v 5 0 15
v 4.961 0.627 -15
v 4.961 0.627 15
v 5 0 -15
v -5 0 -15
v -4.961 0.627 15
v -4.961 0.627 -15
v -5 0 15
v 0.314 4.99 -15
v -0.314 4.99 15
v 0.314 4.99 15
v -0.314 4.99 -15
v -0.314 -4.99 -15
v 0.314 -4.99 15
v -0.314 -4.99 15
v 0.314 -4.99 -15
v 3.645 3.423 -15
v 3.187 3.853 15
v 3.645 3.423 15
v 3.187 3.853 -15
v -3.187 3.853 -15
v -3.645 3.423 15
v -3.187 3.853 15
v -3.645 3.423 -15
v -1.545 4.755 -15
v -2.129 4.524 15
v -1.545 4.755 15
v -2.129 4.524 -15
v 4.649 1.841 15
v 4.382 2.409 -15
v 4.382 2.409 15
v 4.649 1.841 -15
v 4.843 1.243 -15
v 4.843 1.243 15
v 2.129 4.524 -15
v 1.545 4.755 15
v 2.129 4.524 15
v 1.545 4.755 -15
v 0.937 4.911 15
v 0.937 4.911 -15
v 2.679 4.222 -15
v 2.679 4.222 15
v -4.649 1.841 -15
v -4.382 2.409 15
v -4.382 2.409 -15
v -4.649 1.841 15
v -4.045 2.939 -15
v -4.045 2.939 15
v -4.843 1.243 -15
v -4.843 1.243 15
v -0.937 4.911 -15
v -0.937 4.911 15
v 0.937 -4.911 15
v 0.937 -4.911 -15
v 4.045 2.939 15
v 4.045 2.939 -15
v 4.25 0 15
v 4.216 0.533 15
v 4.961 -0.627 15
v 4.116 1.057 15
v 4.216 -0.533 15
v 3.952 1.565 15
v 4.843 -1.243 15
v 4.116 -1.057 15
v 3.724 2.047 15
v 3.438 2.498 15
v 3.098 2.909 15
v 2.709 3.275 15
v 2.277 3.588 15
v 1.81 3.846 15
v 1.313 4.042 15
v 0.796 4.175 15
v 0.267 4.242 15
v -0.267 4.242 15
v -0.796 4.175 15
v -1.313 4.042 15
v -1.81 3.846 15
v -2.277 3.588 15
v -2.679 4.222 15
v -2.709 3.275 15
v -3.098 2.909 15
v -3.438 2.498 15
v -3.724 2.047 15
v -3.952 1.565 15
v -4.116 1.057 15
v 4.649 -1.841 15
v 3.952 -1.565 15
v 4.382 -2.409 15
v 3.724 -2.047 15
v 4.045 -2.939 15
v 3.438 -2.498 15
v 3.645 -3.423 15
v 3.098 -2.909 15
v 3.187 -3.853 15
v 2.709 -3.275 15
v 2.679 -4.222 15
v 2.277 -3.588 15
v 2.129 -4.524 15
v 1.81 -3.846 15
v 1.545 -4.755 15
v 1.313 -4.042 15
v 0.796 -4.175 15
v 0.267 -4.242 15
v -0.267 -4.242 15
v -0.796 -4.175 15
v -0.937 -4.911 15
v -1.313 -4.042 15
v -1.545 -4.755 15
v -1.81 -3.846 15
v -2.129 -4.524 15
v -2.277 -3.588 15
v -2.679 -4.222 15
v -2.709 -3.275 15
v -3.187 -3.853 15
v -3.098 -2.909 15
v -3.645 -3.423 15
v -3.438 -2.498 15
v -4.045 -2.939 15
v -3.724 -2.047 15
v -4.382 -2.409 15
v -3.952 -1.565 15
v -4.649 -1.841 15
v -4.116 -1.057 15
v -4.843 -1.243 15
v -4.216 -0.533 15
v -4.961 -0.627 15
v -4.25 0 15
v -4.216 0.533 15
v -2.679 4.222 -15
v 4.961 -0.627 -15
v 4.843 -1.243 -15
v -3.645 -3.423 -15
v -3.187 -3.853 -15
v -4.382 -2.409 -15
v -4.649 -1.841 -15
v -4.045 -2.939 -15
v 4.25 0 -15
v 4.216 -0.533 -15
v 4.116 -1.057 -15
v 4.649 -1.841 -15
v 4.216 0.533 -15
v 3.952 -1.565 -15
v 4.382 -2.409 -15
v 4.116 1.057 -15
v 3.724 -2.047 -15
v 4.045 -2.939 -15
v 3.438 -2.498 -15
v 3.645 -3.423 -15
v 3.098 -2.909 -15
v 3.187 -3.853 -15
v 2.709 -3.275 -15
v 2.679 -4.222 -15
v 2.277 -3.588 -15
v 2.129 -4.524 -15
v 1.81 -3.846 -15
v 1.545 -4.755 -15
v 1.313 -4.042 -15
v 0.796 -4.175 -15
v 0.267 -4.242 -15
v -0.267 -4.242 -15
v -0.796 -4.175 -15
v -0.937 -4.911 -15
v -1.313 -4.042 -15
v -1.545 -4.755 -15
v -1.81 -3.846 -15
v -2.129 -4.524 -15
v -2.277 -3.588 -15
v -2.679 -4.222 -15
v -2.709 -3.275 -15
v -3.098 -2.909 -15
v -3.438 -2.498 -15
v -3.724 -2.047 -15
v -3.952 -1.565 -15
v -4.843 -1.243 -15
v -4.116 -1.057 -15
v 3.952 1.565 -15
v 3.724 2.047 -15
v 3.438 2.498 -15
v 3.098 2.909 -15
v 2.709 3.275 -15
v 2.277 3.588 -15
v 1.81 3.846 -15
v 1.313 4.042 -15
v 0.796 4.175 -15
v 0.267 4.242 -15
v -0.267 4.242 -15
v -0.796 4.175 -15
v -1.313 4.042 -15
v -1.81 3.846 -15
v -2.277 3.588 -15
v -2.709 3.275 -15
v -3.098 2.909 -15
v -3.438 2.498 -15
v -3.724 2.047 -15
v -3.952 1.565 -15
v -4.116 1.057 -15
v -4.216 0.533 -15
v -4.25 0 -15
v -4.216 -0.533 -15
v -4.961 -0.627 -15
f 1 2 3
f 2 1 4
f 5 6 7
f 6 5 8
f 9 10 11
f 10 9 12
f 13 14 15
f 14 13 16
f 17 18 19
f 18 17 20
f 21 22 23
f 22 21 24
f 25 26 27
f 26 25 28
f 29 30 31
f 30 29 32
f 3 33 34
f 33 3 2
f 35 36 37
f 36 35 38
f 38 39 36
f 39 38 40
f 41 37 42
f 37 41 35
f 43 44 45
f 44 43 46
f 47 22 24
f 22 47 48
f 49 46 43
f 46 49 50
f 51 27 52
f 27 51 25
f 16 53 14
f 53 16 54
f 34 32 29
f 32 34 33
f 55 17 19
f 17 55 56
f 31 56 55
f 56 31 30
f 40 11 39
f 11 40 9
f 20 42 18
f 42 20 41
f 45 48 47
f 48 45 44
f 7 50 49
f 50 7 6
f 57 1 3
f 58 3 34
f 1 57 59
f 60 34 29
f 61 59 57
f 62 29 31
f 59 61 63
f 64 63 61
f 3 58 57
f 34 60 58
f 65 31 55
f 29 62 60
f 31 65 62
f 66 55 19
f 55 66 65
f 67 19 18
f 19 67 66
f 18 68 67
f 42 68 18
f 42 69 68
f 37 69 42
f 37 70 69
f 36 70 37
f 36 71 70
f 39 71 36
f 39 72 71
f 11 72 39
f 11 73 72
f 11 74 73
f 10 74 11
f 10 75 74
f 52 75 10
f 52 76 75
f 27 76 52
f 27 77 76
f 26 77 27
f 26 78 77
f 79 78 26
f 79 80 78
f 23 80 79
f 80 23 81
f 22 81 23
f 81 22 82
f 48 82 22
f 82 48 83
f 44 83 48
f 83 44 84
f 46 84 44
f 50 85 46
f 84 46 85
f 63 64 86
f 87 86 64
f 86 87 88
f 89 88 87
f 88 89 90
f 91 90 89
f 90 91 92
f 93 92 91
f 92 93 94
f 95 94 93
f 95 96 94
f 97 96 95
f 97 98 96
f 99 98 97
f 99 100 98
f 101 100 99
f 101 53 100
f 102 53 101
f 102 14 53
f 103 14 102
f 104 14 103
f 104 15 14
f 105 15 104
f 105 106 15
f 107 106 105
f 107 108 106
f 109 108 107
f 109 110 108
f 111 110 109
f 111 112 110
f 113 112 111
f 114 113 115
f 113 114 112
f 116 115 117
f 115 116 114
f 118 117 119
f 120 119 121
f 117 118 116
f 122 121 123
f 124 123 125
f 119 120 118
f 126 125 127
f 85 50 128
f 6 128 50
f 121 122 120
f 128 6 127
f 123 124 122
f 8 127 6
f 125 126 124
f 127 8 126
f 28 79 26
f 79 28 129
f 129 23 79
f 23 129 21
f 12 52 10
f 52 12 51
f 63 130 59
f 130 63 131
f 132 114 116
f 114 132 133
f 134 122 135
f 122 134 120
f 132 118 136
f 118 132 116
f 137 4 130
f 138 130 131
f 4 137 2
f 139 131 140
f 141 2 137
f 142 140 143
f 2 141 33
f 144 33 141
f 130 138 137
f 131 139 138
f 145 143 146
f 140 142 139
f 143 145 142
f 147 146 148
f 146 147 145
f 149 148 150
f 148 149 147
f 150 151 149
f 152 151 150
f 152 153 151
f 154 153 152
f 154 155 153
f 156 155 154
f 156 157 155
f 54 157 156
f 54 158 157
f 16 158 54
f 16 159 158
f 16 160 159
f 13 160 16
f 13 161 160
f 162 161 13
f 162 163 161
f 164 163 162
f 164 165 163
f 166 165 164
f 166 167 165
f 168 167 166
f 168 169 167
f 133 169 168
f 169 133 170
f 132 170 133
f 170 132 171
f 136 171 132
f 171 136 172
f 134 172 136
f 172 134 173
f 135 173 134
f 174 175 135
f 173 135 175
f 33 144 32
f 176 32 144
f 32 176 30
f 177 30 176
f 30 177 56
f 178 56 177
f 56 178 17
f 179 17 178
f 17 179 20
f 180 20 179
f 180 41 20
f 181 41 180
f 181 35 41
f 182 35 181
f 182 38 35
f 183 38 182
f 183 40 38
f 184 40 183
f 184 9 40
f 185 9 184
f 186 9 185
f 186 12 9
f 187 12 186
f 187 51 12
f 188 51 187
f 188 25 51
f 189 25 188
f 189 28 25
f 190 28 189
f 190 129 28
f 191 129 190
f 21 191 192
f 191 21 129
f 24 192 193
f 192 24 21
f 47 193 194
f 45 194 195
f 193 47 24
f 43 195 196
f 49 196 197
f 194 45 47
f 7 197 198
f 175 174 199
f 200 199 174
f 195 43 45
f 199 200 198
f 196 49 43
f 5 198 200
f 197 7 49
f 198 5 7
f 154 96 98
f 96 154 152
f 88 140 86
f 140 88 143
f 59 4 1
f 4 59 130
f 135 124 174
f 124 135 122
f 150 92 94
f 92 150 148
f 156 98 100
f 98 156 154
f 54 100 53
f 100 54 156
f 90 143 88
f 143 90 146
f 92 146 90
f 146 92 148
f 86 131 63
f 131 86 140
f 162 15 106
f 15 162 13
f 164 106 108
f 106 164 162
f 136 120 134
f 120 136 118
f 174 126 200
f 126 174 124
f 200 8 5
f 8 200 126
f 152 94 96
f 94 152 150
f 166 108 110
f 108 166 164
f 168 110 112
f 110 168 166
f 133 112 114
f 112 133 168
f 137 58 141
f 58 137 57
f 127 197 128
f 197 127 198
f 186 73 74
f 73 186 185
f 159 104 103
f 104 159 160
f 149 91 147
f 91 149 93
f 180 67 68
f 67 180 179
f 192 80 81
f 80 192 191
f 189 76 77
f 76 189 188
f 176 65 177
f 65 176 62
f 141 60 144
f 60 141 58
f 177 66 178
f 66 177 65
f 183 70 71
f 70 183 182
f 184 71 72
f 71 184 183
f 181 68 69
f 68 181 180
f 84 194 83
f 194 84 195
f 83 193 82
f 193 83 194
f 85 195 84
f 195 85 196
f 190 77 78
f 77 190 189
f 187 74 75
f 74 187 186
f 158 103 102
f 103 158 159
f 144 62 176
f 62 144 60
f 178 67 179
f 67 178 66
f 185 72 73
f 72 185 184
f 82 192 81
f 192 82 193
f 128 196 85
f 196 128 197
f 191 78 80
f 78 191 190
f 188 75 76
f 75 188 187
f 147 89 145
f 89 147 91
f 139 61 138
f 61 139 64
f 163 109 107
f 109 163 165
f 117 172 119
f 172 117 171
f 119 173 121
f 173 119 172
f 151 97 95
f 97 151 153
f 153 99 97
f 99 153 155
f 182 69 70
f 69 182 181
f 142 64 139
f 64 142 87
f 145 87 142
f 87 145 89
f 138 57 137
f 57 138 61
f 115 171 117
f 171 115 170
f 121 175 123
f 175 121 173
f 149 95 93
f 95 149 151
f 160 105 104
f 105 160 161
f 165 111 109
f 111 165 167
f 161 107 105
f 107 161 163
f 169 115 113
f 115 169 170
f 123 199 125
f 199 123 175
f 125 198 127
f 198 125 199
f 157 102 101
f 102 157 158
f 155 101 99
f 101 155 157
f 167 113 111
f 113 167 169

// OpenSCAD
$fn = 50;


difference() {
	union() {
		translate(v = [0, 0, -15.0000000000]) {
			cylinder(h = 30, r = 5.0000000000);
		}
	}
	union() {
		translate(v = [0, 0, -100.0000000000]) {
			cylinder(h = 200, r = 4.2500000000);
		}
	}
}
